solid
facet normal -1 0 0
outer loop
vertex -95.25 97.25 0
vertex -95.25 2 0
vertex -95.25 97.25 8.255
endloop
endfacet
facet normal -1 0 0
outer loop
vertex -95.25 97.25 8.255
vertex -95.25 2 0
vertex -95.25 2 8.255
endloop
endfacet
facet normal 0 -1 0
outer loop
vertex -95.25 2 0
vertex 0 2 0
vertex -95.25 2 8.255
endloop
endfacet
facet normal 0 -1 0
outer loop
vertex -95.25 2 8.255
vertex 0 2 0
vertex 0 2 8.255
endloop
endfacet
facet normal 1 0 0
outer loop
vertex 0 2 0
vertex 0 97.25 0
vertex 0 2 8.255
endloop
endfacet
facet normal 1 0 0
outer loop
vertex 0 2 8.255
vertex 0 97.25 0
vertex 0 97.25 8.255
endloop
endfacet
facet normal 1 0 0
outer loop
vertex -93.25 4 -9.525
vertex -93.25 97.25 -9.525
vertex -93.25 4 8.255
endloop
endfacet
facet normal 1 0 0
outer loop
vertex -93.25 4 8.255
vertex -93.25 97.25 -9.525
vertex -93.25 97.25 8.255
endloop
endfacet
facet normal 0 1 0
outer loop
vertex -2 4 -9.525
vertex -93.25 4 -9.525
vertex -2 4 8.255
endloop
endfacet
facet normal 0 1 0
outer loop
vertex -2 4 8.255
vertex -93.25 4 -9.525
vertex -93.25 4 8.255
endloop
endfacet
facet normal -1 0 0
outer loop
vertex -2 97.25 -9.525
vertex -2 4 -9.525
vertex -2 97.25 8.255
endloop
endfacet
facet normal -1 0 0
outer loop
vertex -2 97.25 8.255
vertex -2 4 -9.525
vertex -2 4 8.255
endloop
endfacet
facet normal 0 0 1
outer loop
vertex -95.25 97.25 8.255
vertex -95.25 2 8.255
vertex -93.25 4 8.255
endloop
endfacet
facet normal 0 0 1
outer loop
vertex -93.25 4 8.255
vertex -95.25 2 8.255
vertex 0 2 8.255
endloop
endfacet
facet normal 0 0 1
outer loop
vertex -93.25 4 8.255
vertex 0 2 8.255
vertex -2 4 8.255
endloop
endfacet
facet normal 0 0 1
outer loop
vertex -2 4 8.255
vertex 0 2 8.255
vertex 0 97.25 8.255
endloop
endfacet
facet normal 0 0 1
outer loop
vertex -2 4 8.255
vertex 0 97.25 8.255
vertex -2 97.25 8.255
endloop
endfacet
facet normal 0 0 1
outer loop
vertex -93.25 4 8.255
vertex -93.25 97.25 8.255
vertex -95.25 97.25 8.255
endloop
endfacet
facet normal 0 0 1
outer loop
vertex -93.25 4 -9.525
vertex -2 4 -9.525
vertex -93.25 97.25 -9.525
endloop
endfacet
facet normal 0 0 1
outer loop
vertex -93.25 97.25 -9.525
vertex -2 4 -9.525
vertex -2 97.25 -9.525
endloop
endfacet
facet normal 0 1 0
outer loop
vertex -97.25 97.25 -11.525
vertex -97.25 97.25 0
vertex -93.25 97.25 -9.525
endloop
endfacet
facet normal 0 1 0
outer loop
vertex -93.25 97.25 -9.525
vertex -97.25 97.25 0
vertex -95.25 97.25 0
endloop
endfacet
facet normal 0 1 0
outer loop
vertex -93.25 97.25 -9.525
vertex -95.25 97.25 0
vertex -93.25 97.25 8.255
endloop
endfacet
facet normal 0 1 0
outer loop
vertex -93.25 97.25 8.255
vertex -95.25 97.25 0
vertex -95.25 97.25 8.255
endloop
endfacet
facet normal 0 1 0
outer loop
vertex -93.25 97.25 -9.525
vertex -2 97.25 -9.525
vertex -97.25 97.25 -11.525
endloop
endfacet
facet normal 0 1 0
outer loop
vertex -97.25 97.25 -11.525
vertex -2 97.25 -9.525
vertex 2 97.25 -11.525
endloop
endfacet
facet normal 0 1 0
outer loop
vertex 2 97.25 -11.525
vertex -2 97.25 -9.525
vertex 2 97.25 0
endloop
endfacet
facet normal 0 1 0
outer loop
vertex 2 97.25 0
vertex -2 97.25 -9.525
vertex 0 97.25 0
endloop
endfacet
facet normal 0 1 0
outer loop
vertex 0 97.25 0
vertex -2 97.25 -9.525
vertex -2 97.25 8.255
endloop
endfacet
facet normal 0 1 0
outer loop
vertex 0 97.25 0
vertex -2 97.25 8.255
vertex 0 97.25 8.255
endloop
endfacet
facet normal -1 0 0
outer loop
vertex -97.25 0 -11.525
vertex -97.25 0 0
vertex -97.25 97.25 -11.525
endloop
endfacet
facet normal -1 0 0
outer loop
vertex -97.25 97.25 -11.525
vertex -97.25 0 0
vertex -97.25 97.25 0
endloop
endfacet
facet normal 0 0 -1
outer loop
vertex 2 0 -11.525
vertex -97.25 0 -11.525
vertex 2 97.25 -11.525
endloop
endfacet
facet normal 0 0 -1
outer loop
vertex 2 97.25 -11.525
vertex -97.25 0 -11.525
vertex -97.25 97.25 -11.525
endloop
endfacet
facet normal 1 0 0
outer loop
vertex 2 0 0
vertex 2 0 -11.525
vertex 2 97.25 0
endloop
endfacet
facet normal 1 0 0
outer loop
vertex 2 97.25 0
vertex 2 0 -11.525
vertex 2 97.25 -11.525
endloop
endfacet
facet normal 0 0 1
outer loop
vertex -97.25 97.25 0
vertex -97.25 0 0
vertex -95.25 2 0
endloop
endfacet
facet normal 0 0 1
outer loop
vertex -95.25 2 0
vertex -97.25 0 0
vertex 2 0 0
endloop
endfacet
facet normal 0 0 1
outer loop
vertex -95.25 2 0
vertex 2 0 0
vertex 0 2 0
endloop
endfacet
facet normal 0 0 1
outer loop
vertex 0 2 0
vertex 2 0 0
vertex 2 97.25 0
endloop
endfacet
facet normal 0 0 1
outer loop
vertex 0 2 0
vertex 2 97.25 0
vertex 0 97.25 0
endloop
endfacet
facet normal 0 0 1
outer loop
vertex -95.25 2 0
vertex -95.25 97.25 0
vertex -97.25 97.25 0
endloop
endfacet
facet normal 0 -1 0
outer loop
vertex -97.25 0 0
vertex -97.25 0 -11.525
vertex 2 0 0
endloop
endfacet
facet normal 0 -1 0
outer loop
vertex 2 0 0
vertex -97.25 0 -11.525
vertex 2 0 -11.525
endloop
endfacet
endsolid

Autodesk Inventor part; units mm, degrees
ref_plane "YZ Plane" through (0, 0, 0) normal (1, 0, 0) x (0, 1, 0)
ref_plane "XZ Plane" through (0, 0, 0) normal (0, 1, 0) x (-1, 0, 0)
ref_plane "XY Plane" through (0, 0, 0) normal (0, 0, 1) x (1, 0, 0)
sketch "Sketch1" plane through (0, 0, 0) normal (0, 1, 0) x (-1, 0, 0)
  line L0 (0, 0) -> (95.25, 0)
  line L1 (95.25, 0) -> (95.25, -9.525)
  line L2 (95.25, -9.525) -> (0, -9.525)
  line L3 (0, -9.525) -> (0, 0)
  line L4 (-2, -11.525) -> (97.25, -11.525)
  line L5 (97.25, -11.525) -> (97.25, 2)
  line L6 (97.25, 2) -> (-2, 2)
  line L7 (-2, 2) -> (-2, -11.525)
  line L8 (95.25, 0) -> (97.25, 0)
  line L9 (0, 0) -> (-2, 0)
  dimension "d0" = 95.25
  dimension "d1" = 9.525
  dimension "d4" = 2
extrude "Extrusion1" add sketch "Sketch1" along normal blind 2 contours L0 L1 L2 L3 | L3 L2 L1 L8 L5 L4 L7 L9
sketch "Sketch2" plane through (0, 2, 0) normal (0, 1, 0) x (1, 0, 0)
  line L0 (-97.25, 0) -> (2, 0) projected
  line L1 (2, 0) -> (2, 11.525) projected
  line L2 (2, 11.525) -> (-97.25, 11.525) projected
  line L3 (-97.25, 11.525) -> (-97.25, 0) projected
  line L4 (0, 9.525) -> (0, 2)
  line L5 (0, 2) -> (-95.25, 2)
  line L6 (-95.25, 2) -> (-95.25, 9.525)
  line L7 (-95.25, 9.525) -> (0, 9.525)
  line L8 (0, 2) -> (0, 0)
  line L9 (-95.25, 2) -> (-95.25, 0)
  dimension "d5" = 2
extrude "Extrusion2" add sketch "Sketch2" along normal blind 95.25 contours L3 L2 L1 L0 L8 L4 L7 L6 L9
sketch "Sketch4" plane through (-95.25, 2, -9.525) normal (0, 0, 1) x (1, 0, 0)
  line L0 (95.25, 0) -> (0, 0) projected
  line L1 (95.25, 0) -> (95.25, 95.25) projected
  line L2 (0, 95.25) -> (95.25, 95.25) projected
  line L3 (0, 0) -> (0, 95.25) projected
  line L4 (2, 93.25) -> (93.25, 93.25)
  line L5 (93.25, 93.25) -> (93.25, 2)
  line L6 (93.25, 2) -> (2, 2)
  line L7 (2, 2) -> (2, 93.25)
  line L8 (2, 93.25) -> (93.25, 93.25)
  line L9 (93.25, 93.25) -> (93.25, 95.25)
  line L10 (93.25, 95.25) -> (2, 95.25)
  line L11 (2, 95.25) -> (2, 93.25)
  point P0 (95.25, -2)
  point P1 (2, 95.25)
  dimension "d11" = 2
extrude "Extrusion4" add sketch "Sketch4" along normal blind 17.78 contours L0 L3 L2 L11 L7 L6 L5 L9 L1
properties part number "front"
